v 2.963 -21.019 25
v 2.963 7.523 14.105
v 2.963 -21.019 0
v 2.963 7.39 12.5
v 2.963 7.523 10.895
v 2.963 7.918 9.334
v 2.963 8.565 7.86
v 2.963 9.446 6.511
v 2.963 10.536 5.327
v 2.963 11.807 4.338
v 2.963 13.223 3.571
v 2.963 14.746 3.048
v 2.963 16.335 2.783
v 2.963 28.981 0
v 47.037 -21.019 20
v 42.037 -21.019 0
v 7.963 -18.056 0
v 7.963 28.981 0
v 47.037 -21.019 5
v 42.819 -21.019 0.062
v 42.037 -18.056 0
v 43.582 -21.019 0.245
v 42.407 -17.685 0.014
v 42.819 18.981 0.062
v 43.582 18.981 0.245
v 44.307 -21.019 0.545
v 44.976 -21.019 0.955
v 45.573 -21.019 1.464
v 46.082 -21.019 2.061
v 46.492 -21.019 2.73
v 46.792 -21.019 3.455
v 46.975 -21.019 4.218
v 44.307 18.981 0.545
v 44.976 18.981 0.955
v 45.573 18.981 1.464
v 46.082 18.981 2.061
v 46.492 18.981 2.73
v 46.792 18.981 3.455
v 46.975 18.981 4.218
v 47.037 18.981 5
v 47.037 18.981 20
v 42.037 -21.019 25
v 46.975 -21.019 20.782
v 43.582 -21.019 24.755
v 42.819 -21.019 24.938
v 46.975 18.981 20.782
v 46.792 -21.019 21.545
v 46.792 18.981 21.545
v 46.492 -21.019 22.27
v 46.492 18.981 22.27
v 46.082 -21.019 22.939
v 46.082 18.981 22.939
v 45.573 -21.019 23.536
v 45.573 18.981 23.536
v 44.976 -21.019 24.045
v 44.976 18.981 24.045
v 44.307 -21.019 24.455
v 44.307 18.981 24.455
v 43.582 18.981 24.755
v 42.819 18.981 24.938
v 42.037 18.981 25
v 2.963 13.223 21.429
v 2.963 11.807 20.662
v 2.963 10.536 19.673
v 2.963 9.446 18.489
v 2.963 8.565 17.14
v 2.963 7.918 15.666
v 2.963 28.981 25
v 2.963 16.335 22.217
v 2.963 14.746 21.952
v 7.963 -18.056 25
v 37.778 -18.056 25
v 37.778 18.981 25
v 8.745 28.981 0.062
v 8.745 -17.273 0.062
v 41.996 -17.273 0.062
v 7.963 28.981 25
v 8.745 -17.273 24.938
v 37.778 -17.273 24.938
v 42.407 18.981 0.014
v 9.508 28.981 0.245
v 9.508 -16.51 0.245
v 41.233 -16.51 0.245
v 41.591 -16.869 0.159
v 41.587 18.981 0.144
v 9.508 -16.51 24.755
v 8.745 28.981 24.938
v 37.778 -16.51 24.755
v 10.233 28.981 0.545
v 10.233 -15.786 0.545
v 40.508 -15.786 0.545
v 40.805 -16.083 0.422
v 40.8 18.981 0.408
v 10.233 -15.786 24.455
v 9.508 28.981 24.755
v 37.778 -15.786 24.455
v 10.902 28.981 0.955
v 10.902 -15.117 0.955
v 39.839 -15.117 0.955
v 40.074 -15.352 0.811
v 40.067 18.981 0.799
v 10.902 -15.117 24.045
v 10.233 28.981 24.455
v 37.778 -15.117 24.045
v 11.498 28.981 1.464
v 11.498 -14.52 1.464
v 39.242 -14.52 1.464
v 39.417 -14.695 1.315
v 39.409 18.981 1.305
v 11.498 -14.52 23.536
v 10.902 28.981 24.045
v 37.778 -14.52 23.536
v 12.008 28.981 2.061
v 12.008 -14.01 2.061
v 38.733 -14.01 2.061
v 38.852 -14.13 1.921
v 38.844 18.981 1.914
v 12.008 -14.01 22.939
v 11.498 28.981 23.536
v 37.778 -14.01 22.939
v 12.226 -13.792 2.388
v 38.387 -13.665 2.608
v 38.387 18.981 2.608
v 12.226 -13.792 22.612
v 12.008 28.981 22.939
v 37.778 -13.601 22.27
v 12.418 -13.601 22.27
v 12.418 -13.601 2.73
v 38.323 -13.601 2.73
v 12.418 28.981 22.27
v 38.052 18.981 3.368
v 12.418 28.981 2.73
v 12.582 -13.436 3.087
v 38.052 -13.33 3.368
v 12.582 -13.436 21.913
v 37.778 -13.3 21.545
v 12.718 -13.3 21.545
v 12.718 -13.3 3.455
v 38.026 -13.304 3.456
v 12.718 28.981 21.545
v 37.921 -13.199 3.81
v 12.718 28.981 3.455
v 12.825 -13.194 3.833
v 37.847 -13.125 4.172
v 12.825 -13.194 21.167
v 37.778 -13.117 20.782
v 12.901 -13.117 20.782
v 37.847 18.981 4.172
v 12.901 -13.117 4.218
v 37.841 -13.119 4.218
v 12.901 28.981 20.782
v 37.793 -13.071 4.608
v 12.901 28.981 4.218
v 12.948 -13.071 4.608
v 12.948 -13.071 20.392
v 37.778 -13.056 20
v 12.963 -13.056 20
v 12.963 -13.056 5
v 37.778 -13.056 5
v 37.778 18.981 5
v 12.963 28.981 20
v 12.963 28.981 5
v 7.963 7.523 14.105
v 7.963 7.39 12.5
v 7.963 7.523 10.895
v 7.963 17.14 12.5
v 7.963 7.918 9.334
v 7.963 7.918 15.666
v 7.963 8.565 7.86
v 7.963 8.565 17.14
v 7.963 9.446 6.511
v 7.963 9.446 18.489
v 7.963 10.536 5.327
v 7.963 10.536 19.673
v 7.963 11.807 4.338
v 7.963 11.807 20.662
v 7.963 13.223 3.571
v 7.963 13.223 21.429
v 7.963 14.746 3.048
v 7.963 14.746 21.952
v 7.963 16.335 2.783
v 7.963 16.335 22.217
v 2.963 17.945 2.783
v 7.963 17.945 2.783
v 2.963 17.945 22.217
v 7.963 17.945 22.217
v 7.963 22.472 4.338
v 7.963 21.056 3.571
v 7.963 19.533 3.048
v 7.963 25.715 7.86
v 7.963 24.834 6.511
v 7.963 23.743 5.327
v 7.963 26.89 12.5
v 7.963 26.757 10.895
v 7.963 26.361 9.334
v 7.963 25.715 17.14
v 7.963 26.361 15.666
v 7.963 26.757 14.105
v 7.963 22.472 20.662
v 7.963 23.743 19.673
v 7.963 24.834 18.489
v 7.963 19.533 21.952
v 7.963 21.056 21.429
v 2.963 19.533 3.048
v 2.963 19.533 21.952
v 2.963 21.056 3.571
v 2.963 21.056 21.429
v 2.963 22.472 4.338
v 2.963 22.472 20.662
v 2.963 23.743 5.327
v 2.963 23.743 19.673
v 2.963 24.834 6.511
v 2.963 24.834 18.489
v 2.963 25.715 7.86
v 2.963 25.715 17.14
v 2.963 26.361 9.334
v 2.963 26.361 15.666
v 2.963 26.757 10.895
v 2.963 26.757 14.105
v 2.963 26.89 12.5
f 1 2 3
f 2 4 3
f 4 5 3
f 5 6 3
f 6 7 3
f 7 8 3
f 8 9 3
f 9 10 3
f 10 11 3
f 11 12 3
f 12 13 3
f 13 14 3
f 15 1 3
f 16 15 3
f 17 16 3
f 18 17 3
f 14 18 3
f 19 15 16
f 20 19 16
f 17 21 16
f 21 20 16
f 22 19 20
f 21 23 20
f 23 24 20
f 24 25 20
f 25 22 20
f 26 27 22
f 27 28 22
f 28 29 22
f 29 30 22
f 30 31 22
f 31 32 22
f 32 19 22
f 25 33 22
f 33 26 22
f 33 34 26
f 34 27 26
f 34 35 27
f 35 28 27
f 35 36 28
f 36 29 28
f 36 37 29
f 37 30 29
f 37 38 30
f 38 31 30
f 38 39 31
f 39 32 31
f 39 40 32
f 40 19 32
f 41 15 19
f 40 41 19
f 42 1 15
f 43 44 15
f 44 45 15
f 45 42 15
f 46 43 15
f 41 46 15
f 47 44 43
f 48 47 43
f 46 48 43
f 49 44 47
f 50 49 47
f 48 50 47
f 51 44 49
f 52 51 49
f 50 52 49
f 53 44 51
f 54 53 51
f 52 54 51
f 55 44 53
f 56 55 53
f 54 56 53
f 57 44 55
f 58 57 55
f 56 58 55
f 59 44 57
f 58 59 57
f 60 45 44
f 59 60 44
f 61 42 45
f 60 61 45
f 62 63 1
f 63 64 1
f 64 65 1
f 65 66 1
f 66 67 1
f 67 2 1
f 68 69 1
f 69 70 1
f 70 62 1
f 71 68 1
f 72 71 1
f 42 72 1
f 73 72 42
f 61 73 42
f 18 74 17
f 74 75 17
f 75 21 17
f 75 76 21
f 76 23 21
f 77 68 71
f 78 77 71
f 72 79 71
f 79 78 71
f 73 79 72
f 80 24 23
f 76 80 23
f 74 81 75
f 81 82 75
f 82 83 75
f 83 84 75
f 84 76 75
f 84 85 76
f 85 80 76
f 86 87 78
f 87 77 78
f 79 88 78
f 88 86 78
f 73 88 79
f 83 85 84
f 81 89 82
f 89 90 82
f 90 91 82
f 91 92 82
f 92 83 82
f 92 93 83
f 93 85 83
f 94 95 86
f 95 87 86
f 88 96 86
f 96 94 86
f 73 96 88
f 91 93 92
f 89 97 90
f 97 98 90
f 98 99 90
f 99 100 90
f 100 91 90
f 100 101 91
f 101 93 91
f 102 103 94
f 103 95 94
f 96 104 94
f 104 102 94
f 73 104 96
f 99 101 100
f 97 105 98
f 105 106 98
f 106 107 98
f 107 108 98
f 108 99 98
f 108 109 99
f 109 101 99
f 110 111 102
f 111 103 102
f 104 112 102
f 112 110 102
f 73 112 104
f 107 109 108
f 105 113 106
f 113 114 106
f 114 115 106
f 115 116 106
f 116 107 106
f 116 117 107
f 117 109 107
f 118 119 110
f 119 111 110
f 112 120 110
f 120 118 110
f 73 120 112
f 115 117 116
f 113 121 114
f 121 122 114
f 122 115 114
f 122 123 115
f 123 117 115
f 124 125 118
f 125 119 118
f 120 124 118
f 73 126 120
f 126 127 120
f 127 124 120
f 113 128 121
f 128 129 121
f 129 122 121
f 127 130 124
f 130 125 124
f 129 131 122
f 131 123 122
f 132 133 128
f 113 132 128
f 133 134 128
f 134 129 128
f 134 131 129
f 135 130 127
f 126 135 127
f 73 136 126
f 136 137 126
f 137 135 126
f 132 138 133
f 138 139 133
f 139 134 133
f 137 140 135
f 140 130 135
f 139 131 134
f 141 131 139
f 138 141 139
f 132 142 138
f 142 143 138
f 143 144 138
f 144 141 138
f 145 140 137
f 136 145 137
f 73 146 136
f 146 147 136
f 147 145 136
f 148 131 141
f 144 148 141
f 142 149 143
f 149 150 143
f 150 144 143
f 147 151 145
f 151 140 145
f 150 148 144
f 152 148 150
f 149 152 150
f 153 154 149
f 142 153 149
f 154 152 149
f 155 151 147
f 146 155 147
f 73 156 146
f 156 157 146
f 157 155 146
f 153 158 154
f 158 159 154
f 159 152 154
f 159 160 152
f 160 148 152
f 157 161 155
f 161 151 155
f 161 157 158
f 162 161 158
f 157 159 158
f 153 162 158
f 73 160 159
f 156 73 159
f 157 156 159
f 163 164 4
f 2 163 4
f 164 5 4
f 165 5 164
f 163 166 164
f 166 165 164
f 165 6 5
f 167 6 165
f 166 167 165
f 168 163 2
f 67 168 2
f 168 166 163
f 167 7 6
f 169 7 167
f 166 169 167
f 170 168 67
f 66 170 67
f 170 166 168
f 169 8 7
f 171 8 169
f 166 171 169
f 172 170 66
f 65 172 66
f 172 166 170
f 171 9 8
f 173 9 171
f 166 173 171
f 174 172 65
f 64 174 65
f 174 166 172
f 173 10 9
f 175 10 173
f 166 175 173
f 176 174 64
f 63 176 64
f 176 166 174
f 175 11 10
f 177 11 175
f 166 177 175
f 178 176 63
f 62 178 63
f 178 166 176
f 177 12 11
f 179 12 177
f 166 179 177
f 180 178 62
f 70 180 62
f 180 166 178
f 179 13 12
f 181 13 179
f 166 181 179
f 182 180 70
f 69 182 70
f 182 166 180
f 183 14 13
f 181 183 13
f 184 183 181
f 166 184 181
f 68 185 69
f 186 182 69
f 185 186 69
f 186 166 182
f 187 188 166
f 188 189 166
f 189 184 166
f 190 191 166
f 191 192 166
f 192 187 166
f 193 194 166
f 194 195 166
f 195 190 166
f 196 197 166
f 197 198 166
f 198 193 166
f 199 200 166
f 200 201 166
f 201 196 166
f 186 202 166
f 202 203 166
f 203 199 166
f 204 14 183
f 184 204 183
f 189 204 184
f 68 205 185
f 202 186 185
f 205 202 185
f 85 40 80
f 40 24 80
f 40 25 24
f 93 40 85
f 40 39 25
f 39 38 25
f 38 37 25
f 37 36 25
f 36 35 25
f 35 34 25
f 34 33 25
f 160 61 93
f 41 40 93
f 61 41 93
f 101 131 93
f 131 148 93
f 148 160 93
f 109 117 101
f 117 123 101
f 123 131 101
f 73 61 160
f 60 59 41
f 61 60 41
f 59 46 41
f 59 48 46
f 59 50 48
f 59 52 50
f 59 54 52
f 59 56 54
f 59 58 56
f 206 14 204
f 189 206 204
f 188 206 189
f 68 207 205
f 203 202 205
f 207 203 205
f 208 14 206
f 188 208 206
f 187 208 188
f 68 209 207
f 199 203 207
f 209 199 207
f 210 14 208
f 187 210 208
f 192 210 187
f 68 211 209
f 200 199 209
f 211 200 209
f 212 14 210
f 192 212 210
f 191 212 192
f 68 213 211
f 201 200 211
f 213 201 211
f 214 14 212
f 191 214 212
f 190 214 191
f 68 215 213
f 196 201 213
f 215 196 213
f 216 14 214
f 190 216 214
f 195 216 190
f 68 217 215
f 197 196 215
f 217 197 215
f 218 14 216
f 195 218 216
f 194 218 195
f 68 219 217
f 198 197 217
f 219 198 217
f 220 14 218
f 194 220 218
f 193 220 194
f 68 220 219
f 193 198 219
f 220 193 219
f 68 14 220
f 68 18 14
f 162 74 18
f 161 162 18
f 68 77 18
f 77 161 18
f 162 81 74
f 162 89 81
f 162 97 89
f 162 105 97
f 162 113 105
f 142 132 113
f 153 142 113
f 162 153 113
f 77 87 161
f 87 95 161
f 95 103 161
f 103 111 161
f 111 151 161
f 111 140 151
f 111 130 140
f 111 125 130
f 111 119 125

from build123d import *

# Parameters (mm, degrees)
EXTRUDE_1_DEPTH     = 25
SKETCH_2_R          = 9.75
CUT_EXTRUDE_1_DEPTH = 5
FILLET_2_R          = 5


with BuildPart() as part:
    # 草圖1 → 填料-伸長1 (new body)
    with BuildSketch(Plane.XY):
        Polygon((12.962962963, -21.018518519), (47.037037037, -21.018518519), (47.037037037, 18.981481481), (37.777777778, 18.981481481), (37.777777778, -13.055555556), (12.962962963, -13.055555556), (12.962962963, 28.981481481), (2.962962963, 28.981481481), (2.962962963, -21.018518519), align=None)
    extrude(amount=EXTRUDE_1_DEPTH)

    # 草圖2 → 除料-伸長1 (cut)
    with BuildSketch(Plane.ZY.offset(-2.962962963)):
        with Locations(Location((12.5, 17.139708428, 0), (0, 0, 270))):
            Circle(SKETCH_2_R)
    extrude(amount=-CUT_EXTRUDE_1_DEPTH, mode=Mode.SUBTRACT)

    # 圓角2
    # the kernel refuses this fillet: 5 mm, written as the material it takes off along each edge
    with BuildSketch(Plane(origin=(47.037037037, -33.518518519, 25), x_dir=(0, 0, -1), z_dir=(0, 1, 0))) as fillet_2_piece_1:
        with BuildLine():
            CenterArc((FILLET_2_R, FILLET_2_R), FILLET_2_R, 180, 90)
            Line((0, FILLET_2_R), (0, 0))
            Line((0, 0), (FILLET_2_R, 0))
        make_face()
    extrude(amount=65, mode=Mode.SUBTRACT)
    with BuildSketch(Plane(origin=(47.037037037, -33.518518519, 0), x_dir=(0, 0, 1), z_dir=(0, 1, 0))) as fillet_2_piece_2:
        with BuildLine():
            CenterArc((FILLET_2_R, -FILLET_2_R), FILLET_2_R, 90, 90)
            Line((0, -FILLET_2_R), (0, 0))
            Line((0, 0), (FILLET_2_R, 0))
        make_face()
    extrude(amount=65, mode=Mode.SUBTRACT)
    with BuildSketch(Plane(origin=(37.777777778, 31.481481481, 0), x_dir=(1, 0, 0), z_dir=(0, -1, 0))) as fillet_2_piece_3:
        with BuildLine():
            CenterArc((FILLET_2_R, FILLET_2_R), FILLET_2_R, 180, 90)
            Line((0, FILLET_2_R), (0, 0))
            Line((0, 0), (FILLET_2_R, 0))
        make_face()
    extrude(amount=44.537037037, mode=Mode.SUBTRACT)
    with BuildSketch(Plane(origin=(12.962962963, -13.055555556, 25), x_dir=(-1, 0, 0), z_dir=(0, 1, 0))) as fillet_2_piece_4:
        with BuildLine():
            CenterArc((FILLET_2_R, -FILLET_2_R), FILLET_2_R, 90, 90)
            Line((0, -FILLET_2_R), (0, 0))
            Line((0, 0), (FILLET_2_R, 0))
        make_face()
    extrude(amount=54.537037037, mode=Mode.SUBTRACT)
    with BuildSketch(Plane(origin=(12.962962963, -13.055555556, 0), x_dir=(-1, 0, 0), z_dir=(0, 1, 0))) as fillet_2_piece_5:
        with BuildLine():
            CenterArc((FILLET_2_R, FILLET_2_R), FILLET_2_R, 180, 90)
            Line((0, FILLET_2_R), (0, 0))
            Line((0, 0), (FILLET_2_R, 0))
        make_face()
    extrude(amount=54.537037037, mode=Mode.SUBTRACT)
    with BuildSketch(Plane(origin=(37.777777778, -13.055555556, 25), x_dir=(0, -1, 0), z_dir=(-1, 0, 0))) as fillet_2_piece_6:
        with BuildLine():
            CenterArc((FILLET_2_R, -FILLET_2_R), FILLET_2_R, 90, 90)
            Line((0, -FILLET_2_R), (0, 0))
            Line((0, 0), (FILLET_2_R, 0))
        make_face()
    extrude(amount=24.814814815, mode=Mode.SUBTRACT)
    with BuildSketch(Plane(origin=(37.777777778, -13.055555556, 0), x_dir=(0, -1, 0), z_dir=(-1, 0, 0))) as fillet_2_piece_7:
        with BuildLine():
            CenterArc((FILLET_2_R, FILLET_2_R), FILLET_2_R, 180, 90)
            Line((0, FILLET_2_R), (0, 0))
            Line((0, 0), (FILLET_2_R, 0))
        make_face()
    extrude(amount=24.814814815, mode=Mode.SUBTRACT)
    with BuildSketch(Plane(origin=(37.777777778, 31.481481481, 0), x_dir=(1, 0, 0), z_dir=(0, -1, 0))) as fillet_2_piece_8a_section:
        with BuildLine():
            CenterArc((FILLET_2_R, FILLET_2_R), FILLET_2_R, 180, 90)
            Line((0, FILLET_2_R), (0, 0))
            Line((0, 0), (FILLET_2_R, 0))
        make_face()
    fillet_2_piece_8a = extrude(amount=57.037037037, mode=Mode.PRIVATE)
    fillet_2_piece_8a = split(fillet_2_piece_8a, bisect_by=Plane(origin=(38.909753349, -13.055555556, 1.131975571), z_dir=(0, -1, 0)), keep=Keep.TOP, mode=Mode.PRIVATE)
    with BuildSketch(Plane(origin=(50.277777778, -13.055555556, 0), x_dir=(0, -1, 0), z_dir=(-1, 0, 0))) as fillet_2_piece_8b_section:
        with BuildLine():
            CenterArc((FILLET_2_R, FILLET_2_R), FILLET_2_R, 180, 90)
            Line((0, FILLET_2_R), (0, 0))
            Line((0, 0), (FILLET_2_R, 0))
        make_face()
    fillet_2_piece_8b = extrude(amount=37.314814815, mode=Mode.PRIVATE)
    fillet_2_piece_8b = split(fillet_2_piece_8b, bisect_by=Plane(origin=(37.777777778, -14.187531127, 1.131975571), z_dir=(1, 0, 0)), keep=Keep.TOP, mode=Mode.PRIVATE)
    fillet_2_piece_8 = fillet_2_piece_8a & fillet_2_piece_8b
    add(fillet_2_piece_8, mode=Mode.SUBTRACT)
    with BuildSketch(Plane(origin=(37.777777778, -13.055555556, 25), x_dir=(0, -1, 0), z_dir=(-1, 0, 0))) as fillet_2_piece_9a_section:
        with BuildLine():
            CenterArc((FILLET_2_R, -FILLET_2_R), FILLET_2_R, 90, 90)
            Line((0, -FILLET_2_R), (0, 0))
            Line((0, 0), (FILLET_2_R, 0))
        make_face()
    fillet_2_piece_9a = extrude(amount=37.314814815, mode=Mode.PRIVATE)
    fillet_2_piece_9a = split(fillet_2_piece_9a, bisect_by=Plane(origin=(12.962962963, -14.187531127, 23.868024429), z_dir=(-1, 0, 0)), keep=Keep.TOP, mode=Mode.PRIVATE)
    with BuildSketch(Plane(origin=(12.962962963, -25.555555556, 25), x_dir=(-1, 0, 0), z_dir=(0, 1, 0))) as fillet_2_piece_9b_section:
        with BuildLine():
            CenterArc((FILLET_2_R, -FILLET_2_R), FILLET_2_R, 90, 90)
            Line((0, -FILLET_2_R), (0, 0))
            Line((0, 0), (FILLET_2_R, 0))
        make_face()
    fillet_2_piece_9b = extrude(amount=67.037037037, mode=Mode.PRIVATE)
    fillet_2_piece_9b = split(fillet_2_piece_9b, bisect_by=Plane(origin=(11.830987392, -13.055555556, 23.868024429), z_dir=(0, -1, 0)), keep=Keep.TOP, mode=Mode.PRIVATE)
    fillet_2_piece_9 = fillet_2_piece_9a & fillet_2_piece_9b
    add(fillet_2_piece_9, mode=Mode.SUBTRACT)
    with BuildSketch(Plane(origin=(37.777777778, -13.055555556, 0), x_dir=(0, -1, 0), z_dir=(-1, 0, 0))) as fillet_2_piece_10a_section:
        with BuildLine():
            CenterArc((FILLET_2_R, FILLET_2_R), FILLET_2_R, 180, 90)
            Line((0, FILLET_2_R), (0, 0))
            Line((0, 0), (FILLET_2_R, 0))
        make_face()
    fillet_2_piece_10a = extrude(amount=37.314814815, mode=Mode.PRIVATE)
    fillet_2_piece_10a = split(fillet_2_piece_10a, bisect_by=Plane(origin=(12.962962963, -14.187531127, 1.131975571), z_dir=(-1, 0, 0)), keep=Keep.TOP, mode=Mode.PRIVATE)
    with BuildSketch(Plane(origin=(12.962962963, -25.555555556, 0), x_dir=(-1, 0, 0), z_dir=(0, 1, 0))) as fillet_2_piece_10b_section:
        with BuildLine():
            CenterArc((FILLET_2_R, FILLET_2_R), FILLET_2_R, 180, 90)
            Line((0, FILLET_2_R), (0, 0))
            Line((0, 0), (FILLET_2_R, 0))
        make_face()
    fillet_2_piece_10b = extrude(amount=67.037037037, mode=Mode.PRIVATE)
    fillet_2_piece_10b = split(fillet_2_piece_10b, bisect_by=Plane(origin=(11.830987392, -13.055555556, 1.131975571), z_dir=(0, -1, 0)), keep=Keep.TOP, mode=Mode.PRIVATE)
    fillet_2_piece_10 = fillet_2_piece_10a & fillet_2_piece_10b
    add(fillet_2_piece_10, mode=Mode.SUBTRACT)


solid = part.part
